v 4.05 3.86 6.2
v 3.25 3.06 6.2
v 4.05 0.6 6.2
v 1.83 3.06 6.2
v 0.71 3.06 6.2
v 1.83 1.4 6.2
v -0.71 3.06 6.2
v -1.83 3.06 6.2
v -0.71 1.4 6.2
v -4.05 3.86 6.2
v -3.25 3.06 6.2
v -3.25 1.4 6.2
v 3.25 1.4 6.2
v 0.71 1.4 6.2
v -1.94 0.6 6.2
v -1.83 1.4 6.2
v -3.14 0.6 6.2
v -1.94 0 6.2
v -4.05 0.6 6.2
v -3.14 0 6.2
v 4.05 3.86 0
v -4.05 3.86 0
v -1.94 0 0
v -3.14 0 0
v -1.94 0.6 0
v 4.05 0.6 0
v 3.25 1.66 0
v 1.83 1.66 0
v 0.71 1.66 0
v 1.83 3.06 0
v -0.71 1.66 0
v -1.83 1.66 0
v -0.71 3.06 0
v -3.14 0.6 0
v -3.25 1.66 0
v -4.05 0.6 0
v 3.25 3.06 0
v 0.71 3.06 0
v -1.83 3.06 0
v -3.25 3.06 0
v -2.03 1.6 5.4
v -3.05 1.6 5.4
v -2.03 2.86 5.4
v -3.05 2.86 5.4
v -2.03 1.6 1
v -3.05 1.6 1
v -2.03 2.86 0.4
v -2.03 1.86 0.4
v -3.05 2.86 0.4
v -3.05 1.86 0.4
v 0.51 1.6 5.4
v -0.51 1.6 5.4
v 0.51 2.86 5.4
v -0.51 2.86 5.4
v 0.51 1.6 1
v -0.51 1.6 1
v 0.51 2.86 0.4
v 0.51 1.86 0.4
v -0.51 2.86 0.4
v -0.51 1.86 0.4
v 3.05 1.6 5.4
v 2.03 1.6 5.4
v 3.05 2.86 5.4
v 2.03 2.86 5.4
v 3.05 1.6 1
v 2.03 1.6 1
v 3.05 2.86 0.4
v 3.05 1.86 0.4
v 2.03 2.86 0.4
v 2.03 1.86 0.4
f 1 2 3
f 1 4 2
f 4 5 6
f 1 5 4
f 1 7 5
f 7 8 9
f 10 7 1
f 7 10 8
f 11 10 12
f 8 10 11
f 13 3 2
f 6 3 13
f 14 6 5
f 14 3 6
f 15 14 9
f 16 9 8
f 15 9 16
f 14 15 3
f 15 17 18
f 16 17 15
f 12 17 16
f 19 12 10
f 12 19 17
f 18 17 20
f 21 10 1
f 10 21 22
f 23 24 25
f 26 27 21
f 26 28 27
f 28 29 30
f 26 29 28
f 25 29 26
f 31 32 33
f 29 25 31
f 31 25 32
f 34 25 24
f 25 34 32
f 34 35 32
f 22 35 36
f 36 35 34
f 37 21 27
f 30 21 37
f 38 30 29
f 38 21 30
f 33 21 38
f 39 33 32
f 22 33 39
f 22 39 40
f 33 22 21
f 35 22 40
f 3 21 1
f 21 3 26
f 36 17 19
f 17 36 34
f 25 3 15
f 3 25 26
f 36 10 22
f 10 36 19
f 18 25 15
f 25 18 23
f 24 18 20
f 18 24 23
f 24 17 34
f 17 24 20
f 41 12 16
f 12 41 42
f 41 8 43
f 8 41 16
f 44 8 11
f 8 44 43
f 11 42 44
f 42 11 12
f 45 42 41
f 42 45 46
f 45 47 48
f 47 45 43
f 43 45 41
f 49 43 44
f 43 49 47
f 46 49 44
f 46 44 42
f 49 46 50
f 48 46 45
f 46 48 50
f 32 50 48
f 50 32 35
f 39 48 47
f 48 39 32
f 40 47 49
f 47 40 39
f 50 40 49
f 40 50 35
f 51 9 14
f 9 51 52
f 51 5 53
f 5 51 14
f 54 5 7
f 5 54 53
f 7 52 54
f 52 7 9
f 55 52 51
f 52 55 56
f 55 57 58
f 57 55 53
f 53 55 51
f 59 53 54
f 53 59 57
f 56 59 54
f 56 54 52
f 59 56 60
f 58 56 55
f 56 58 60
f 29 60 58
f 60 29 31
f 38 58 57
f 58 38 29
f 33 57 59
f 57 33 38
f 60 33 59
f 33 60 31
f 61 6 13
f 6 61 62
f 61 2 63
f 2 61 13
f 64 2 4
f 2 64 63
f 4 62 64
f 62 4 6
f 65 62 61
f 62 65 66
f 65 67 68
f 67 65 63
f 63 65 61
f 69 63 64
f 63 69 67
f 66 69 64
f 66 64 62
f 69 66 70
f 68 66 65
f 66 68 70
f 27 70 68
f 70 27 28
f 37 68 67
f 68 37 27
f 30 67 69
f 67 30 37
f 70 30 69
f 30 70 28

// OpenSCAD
// file: three-channel-common.scad
/* Internal helper for the two three-channel prototypes; open a primary file.
   Copyright Daniel Eric Fredriksen / Quantyra.
   SPDX-License-Identifier: CERN-OHL-S-2.0
   Source Location: https://github.com/Quantyra/connectors
   Derived from the paired V2 direct-overlap arrangement. Original files unchanged.
   Display proxies and cutaway removals are NOT printable parts. */

eps = 0.01;
male_width = 0.64;
male_exposed = 6.00; // assumed usable exposed metal, including tip; measure actual jumper before use
tip_taper = 0.60;
tip_flat = 0.20;
male_standoff = 0;
collar_width = 2.54; // maximum assumed across pitch AND stack directions
collar_length = 4.00; // illustrative
outer_offset = 0.10; // center stays centered; independent outer jumpers shift out
rail_width = 1.20;
rail_height = 0.60;

mouth_width = bore_width + 2*mouth_ease;
body_width = 2*pitch + mouth_width + 2*wall;
bottom = -mouth_ease-wall;
top = contact_height+mouth_ease+wall;
function cy(i) = (i-1)*pitch; // neutral A, B, C; A adjacent to external rail
function my(i) = cy(i)+(i-1)*outer_offset;

// Axial X: component face = 0; jumper face = length.
// Stations [axial X, width across channels, floor, ceiling].
stations = [
    [0,                   mouth_width, -mouth_ease, contact_height+mouth_ease],
    [component_flare_end,  bore_width,  0,           contact_height],
    [guide_start,          bore_width,  0,           contact_height],
    [guide_crest,          bore_width,  guide_floor, contact_height],
    [length,              mouth_width, guide_floor-mouth_ease, contact_height+mouth_ease]
];

assert(length > guide_crest && guide_crest > guide_start);
assert(guide_start > 5.00 && lead_insertion >= 4 && lead_insertion <= 5);
assert(component_flare_end > 0 && component_flare_end < guide_start);
assert(pitch-mouth_width >= 0.8-0.00001 && wall >= 0.8);
assert(lead_thickness >= guide_floor && contact_height > lead_thickness+male_width);
assert(bore_width > max(lead_width, male_width+2*outer_offset));
assert(pitch+outer_offset >= collar_width+0.09);
assert(length+male_standoff-male_exposed >= 0.20-0.00001);
assert(rail_width <= mouth_width+2*wall);

module box(x0,x1,y0,y1,z0,z1) {
    translate([x0,y0,z0]) cube([x1-x0,y1-y0,z1-z0]);
}
module passage(i) {
    ss = concat([[-eps,mouth_width,-mouth_ease,contact_height+mouth_ease]],
                stations,
                [[length+eps,mouth_width,guide_floor-mouth_ease,contact_height+mouth_ease]]);
    pts = [for(s=ss) each [
        [s[0],cy(i)-s[1]/2,s[2]], [s[0],cy(i)+s[1]/2,s[2]],
        [s[0],cy(i)+s[1]/2,s[3]], [s[0],cy(i)-s[1]/2,s[3]]]];
    n = len(ss);
    faces = concat([[3,2,1,0]],
        [for(j=[0:n-2],k=[0:3])
            [4*j+k,4*j+(k+1)%4,4*(j+1)+(k+1)%4,4*(j+1)+k]],
        [[4*(n-1),4*(n-1)+1,4*(n-1)+2,4*(n-1)+3]]);
    polyhedron(points=pts,faces=faces,convexity=10);
}
module sleeve() {
    difference() {
        union() {
            box(0,length,-body_width/2,body_width/2,bottom,top);
            // Broad continuous external rail beside A. No thinning of any wall.
            box(0,length,cy(0)-rail_width/2,cy(0)+rail_width/2,
                bottom-rail_height,bottom+eps);
        }
        for(i=[0:2]) passage(i);
    }
}
module leads() {
    for(i=[0:2]) {
        if(package_kind=="TO92") {
            // Example only: body face at -7; first 3 mm straight;
            // spread over next 3 mm; last bend ends at -1.
            yc=(i-1)*1.27;
            box(-7,-4,yc-lead_width/2,yc+lead_width/2,0,lead_thickness);
            hull() {
                box(-4-eps,-4,yc-lead_width/2,yc+lead_width/2,0,lead_thickness);
                box(-1,-1+eps,cy(i)-lead_width/2,cy(i)+lead_width/2,0,lead_thickness);
            }
            box(-1,lead_insertion,cy(i)-lead_width/2,cy(i)+lead_width/2,0,lead_thickness);
        } else {
            // Nominal CASE 221A L=13.49, L1=3.45, shoulder b=1.34.
            face=lead_insertion-13.49;
            box(face,face+3.45,cy(i)-1.34/2,cy(i)+1.34/2,0,lead_thickness);
            box(face+3.45,lead_insertion,cy(i)-lead_width/2,cy(i)+lead_width/2,0,lead_thickness);
        }
    }
}
module component() {
    // Simplified envelope only; no electrical labels or fit claim from body shape.
    if(package_kind=="TO92")
        box(-11.83,-7,-2.60,2.60,-1.60,2.60);
    else {
        face=lead_insertion-13.49;
        box(face-10,face,-5.05,5.05,-2,2.45);
        box(face-15.12,face-10,-5.05,5.05,-2,-0.72);
    }
}
module male(i) {
    a=length+male_standoff-male_exposed;
    h=lead_thickness; // touching pose chosen by hand; NOT enforced by the cavity
    box(a+tip_taper,length+male_standoff,my(i)-male_width/2,my(i)+male_width/2,h,h+male_width);
    polyhedron(points=[for(s=[[a,tip_flat],[a+tip_taper,male_width]]) each [
        [s[0],my(i)-s[1]/2,h+(male_width-s[1])/2],
        [s[0],my(i)+s[1]/2,h+(male_width-s[1])/2],
        [s[0],my(i)+s[1]/2,h+(male_width+s[1])/2],
        [s[0],my(i)-s[1]/2,h+(male_width+s[1])/2]]],
        faces=[[3,2,1,0],[0,1,5,4],[1,2,6,5],[2,3,7,6],[3,0,4,7],[4,5,6,7]]);
}
module collars() {
    for(i=[0:2]) box(length+male_standoff,length+male_standoff+collar_length,
        my(i)-collar_width/2,my(i)+collar_width/2,
        lead_thickness+male_width/2-collar_width/2,
        lead_thickness+male_width/2+collar_width/2);
}
module proxies(show_component=true) {
    color([0.95,0.58,0.08]) leads();
    for(i=[0:2]) color([0.76,0.17,0.58]) male(i);
    color([0.25,0.27,0.30]) collars();
    if(show_component) color([0.15,0.17,0.20]) component();
}
module print_orientation() {
    // [axial,pitch,stack] -> [pitch,stack-bottom+rail_height,length-axial]
    multmatrix([[0,1,0,0],[0,0,1,rail_height-bottom],[-1,0,0,length],[0,0,0,1]]) children();
}
if(view=="print") color([0.12,0.55,0.66]) print_orientation() sleeve();
else if(view=="assembly") {
    color([0.12,0.55,0.66]) sleeve();
    proxies();
} else if(view=="cutaway") {
    color([0.12,0.55,0.66]) render(convexity=10) difference() {
        sleeve();
        // Remove upper shell only in this illustration, retaining all three floors/dividers.
        box(-eps,length+eps,-body_width,body_width,lead_thickness+0.10,top+eps);
    }
    intersection() {
        proxies(false);
        box(-0.8,length+4.1,-body_width,body_width,bottom-1,top+2);
    }
} else if(view=="check_body") sleeve();
else if(view=="check_leads") leads();
else if(view=="check_males") for(i=[0:2]) male(i);
else if(view=="check_collars") collars();
else if(view=="check_component") component();
else assert(false,"Unknown view");

echo(prototype=package_kind, status="untested prototype",
    print_bounds_size=[body_width,top-bottom+rail_height,length],
    shared_bore=[bore_width,contact_height], guide=[bore_width,contact_height-guide_floor],
    minimum_exterior_wall=wall, minimum_divider=pitch-mouth_width,
    collar_gap=pitch+outer_offset-collar_width,
    nose=length+male_standoff-male_exposed,
    full_section_overlap=lead_insertion-(length+male_standoff-male_exposed+tip_taper));
// main file
/* TO-92 formed-tail three-channel sleeve, millimetres.
   Copyright Daniel Eric Fredriksen / Quantyra.
   SPDX-License-Identifier: CERN-OHL-S-2.0
   Source Location: https://github.com/Quantyra/connectors
   UNTESTED PROTOTYPE. Not for native 1.27 mm lead pitch.
   Form leads separately to 2.54 mm pitch; see ../README.md. */

view = "print"; // print, assembly, cutaway, check_body, check_leads, check_males, check_collars, check_component
package_kind = "TO92";
pitch = 2.54;
length = 6.20;
bore_width = 1.02;
contact_height = 1.26;
mouth_ease = 0.20; // per wall
wall = 0.80;
guide_floor = 0.26; // below the 0.30 mm minimum illustrated lead thickness
component_flare_end = 0.80;
guide_start = 5.20;
guide_crest = 5.80;

// Inspection pose only: does not resize the printable body.
lead_width = 0.50;
lead_thickness = 0.50;
lead_insertion = 4.50; // bounded use: 4.00 to 5.00

include <three-channel-common.scad>
